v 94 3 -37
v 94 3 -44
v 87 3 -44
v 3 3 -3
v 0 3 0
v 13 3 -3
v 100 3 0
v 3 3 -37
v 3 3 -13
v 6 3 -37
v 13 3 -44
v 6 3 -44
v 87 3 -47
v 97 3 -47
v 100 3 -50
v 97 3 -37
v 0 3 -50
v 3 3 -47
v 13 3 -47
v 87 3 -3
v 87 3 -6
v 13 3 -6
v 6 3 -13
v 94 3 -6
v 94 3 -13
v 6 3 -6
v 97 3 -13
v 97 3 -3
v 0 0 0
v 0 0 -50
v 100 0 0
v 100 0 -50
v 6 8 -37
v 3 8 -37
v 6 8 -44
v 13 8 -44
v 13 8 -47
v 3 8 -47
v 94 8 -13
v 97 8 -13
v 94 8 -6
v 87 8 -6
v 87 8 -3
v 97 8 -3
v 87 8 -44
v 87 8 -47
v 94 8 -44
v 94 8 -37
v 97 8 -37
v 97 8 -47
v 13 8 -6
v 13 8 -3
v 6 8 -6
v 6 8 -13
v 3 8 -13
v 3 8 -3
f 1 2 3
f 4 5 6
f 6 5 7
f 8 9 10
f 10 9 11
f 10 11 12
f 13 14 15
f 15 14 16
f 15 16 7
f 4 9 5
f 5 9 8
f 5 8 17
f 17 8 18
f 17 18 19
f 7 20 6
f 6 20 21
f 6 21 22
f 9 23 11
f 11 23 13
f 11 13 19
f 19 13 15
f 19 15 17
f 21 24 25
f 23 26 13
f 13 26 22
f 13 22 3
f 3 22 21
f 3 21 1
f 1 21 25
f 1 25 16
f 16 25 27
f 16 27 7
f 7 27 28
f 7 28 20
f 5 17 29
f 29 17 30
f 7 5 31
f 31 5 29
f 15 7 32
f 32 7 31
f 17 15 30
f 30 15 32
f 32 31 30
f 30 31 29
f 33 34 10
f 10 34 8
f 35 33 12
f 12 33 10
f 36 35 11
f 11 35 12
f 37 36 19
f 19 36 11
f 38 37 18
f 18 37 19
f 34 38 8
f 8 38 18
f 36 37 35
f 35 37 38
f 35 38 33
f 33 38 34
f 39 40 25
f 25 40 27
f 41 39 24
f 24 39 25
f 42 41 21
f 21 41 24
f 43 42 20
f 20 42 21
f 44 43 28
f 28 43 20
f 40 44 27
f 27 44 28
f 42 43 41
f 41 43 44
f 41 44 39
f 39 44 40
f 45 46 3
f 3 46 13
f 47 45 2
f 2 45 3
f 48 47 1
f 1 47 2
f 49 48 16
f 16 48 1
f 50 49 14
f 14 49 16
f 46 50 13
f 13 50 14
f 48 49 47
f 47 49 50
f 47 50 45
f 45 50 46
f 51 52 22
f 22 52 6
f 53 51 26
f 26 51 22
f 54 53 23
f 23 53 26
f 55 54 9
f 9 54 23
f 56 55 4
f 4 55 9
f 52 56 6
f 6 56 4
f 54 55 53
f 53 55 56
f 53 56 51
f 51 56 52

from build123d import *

# Parameters (mm, degrees)
SKETCH2_W           = 100
SKETCH2_H           = 50
BOSS_EXTRUDE1_DEPTH = 3
BOSS_EXTRUDE2_DEPTH = 5


with BuildPart() as part:
    # Sketch2 → Boss-Extrude1 (new body)
    with BuildSketch(Plane(origin=(0, 0, 0), x_dir=(1, 0, 0), z_dir=(0, 1, 0))):
        with Locations((50, 25)):
            Rectangle(SKETCH2_W, SKETCH2_H)
    extrude(amount=BOSS_EXTRUDE1_DEPTH)

    # Sketch3 → Boss-Extrude2 (add)
    with BuildSketch(Plane(origin=(0, 3, 0), x_dir=(1, 0, 0), z_dir=(0, 1, 0))):
        Polygon((3, 37), (3, 47), (13, 47), (13, 44), (6, 44), (6, 37), align=None)
        Polygon((13, 3), (3, 3), (3, 13), (6, 13), (6, 6), (13, 6), align=None)
        Polygon((97, 13), (97, 3), (87, 3), (87, 6), (94, 6), (94, 13), align=None)
        Polygon((87, 47), (97, 47), (97, 37), (94, 37), (94, 44), (87, 44), align=None)
    extrude(amount=BOSS_EXTRUDE2_DEPTH)


solid = part.part
